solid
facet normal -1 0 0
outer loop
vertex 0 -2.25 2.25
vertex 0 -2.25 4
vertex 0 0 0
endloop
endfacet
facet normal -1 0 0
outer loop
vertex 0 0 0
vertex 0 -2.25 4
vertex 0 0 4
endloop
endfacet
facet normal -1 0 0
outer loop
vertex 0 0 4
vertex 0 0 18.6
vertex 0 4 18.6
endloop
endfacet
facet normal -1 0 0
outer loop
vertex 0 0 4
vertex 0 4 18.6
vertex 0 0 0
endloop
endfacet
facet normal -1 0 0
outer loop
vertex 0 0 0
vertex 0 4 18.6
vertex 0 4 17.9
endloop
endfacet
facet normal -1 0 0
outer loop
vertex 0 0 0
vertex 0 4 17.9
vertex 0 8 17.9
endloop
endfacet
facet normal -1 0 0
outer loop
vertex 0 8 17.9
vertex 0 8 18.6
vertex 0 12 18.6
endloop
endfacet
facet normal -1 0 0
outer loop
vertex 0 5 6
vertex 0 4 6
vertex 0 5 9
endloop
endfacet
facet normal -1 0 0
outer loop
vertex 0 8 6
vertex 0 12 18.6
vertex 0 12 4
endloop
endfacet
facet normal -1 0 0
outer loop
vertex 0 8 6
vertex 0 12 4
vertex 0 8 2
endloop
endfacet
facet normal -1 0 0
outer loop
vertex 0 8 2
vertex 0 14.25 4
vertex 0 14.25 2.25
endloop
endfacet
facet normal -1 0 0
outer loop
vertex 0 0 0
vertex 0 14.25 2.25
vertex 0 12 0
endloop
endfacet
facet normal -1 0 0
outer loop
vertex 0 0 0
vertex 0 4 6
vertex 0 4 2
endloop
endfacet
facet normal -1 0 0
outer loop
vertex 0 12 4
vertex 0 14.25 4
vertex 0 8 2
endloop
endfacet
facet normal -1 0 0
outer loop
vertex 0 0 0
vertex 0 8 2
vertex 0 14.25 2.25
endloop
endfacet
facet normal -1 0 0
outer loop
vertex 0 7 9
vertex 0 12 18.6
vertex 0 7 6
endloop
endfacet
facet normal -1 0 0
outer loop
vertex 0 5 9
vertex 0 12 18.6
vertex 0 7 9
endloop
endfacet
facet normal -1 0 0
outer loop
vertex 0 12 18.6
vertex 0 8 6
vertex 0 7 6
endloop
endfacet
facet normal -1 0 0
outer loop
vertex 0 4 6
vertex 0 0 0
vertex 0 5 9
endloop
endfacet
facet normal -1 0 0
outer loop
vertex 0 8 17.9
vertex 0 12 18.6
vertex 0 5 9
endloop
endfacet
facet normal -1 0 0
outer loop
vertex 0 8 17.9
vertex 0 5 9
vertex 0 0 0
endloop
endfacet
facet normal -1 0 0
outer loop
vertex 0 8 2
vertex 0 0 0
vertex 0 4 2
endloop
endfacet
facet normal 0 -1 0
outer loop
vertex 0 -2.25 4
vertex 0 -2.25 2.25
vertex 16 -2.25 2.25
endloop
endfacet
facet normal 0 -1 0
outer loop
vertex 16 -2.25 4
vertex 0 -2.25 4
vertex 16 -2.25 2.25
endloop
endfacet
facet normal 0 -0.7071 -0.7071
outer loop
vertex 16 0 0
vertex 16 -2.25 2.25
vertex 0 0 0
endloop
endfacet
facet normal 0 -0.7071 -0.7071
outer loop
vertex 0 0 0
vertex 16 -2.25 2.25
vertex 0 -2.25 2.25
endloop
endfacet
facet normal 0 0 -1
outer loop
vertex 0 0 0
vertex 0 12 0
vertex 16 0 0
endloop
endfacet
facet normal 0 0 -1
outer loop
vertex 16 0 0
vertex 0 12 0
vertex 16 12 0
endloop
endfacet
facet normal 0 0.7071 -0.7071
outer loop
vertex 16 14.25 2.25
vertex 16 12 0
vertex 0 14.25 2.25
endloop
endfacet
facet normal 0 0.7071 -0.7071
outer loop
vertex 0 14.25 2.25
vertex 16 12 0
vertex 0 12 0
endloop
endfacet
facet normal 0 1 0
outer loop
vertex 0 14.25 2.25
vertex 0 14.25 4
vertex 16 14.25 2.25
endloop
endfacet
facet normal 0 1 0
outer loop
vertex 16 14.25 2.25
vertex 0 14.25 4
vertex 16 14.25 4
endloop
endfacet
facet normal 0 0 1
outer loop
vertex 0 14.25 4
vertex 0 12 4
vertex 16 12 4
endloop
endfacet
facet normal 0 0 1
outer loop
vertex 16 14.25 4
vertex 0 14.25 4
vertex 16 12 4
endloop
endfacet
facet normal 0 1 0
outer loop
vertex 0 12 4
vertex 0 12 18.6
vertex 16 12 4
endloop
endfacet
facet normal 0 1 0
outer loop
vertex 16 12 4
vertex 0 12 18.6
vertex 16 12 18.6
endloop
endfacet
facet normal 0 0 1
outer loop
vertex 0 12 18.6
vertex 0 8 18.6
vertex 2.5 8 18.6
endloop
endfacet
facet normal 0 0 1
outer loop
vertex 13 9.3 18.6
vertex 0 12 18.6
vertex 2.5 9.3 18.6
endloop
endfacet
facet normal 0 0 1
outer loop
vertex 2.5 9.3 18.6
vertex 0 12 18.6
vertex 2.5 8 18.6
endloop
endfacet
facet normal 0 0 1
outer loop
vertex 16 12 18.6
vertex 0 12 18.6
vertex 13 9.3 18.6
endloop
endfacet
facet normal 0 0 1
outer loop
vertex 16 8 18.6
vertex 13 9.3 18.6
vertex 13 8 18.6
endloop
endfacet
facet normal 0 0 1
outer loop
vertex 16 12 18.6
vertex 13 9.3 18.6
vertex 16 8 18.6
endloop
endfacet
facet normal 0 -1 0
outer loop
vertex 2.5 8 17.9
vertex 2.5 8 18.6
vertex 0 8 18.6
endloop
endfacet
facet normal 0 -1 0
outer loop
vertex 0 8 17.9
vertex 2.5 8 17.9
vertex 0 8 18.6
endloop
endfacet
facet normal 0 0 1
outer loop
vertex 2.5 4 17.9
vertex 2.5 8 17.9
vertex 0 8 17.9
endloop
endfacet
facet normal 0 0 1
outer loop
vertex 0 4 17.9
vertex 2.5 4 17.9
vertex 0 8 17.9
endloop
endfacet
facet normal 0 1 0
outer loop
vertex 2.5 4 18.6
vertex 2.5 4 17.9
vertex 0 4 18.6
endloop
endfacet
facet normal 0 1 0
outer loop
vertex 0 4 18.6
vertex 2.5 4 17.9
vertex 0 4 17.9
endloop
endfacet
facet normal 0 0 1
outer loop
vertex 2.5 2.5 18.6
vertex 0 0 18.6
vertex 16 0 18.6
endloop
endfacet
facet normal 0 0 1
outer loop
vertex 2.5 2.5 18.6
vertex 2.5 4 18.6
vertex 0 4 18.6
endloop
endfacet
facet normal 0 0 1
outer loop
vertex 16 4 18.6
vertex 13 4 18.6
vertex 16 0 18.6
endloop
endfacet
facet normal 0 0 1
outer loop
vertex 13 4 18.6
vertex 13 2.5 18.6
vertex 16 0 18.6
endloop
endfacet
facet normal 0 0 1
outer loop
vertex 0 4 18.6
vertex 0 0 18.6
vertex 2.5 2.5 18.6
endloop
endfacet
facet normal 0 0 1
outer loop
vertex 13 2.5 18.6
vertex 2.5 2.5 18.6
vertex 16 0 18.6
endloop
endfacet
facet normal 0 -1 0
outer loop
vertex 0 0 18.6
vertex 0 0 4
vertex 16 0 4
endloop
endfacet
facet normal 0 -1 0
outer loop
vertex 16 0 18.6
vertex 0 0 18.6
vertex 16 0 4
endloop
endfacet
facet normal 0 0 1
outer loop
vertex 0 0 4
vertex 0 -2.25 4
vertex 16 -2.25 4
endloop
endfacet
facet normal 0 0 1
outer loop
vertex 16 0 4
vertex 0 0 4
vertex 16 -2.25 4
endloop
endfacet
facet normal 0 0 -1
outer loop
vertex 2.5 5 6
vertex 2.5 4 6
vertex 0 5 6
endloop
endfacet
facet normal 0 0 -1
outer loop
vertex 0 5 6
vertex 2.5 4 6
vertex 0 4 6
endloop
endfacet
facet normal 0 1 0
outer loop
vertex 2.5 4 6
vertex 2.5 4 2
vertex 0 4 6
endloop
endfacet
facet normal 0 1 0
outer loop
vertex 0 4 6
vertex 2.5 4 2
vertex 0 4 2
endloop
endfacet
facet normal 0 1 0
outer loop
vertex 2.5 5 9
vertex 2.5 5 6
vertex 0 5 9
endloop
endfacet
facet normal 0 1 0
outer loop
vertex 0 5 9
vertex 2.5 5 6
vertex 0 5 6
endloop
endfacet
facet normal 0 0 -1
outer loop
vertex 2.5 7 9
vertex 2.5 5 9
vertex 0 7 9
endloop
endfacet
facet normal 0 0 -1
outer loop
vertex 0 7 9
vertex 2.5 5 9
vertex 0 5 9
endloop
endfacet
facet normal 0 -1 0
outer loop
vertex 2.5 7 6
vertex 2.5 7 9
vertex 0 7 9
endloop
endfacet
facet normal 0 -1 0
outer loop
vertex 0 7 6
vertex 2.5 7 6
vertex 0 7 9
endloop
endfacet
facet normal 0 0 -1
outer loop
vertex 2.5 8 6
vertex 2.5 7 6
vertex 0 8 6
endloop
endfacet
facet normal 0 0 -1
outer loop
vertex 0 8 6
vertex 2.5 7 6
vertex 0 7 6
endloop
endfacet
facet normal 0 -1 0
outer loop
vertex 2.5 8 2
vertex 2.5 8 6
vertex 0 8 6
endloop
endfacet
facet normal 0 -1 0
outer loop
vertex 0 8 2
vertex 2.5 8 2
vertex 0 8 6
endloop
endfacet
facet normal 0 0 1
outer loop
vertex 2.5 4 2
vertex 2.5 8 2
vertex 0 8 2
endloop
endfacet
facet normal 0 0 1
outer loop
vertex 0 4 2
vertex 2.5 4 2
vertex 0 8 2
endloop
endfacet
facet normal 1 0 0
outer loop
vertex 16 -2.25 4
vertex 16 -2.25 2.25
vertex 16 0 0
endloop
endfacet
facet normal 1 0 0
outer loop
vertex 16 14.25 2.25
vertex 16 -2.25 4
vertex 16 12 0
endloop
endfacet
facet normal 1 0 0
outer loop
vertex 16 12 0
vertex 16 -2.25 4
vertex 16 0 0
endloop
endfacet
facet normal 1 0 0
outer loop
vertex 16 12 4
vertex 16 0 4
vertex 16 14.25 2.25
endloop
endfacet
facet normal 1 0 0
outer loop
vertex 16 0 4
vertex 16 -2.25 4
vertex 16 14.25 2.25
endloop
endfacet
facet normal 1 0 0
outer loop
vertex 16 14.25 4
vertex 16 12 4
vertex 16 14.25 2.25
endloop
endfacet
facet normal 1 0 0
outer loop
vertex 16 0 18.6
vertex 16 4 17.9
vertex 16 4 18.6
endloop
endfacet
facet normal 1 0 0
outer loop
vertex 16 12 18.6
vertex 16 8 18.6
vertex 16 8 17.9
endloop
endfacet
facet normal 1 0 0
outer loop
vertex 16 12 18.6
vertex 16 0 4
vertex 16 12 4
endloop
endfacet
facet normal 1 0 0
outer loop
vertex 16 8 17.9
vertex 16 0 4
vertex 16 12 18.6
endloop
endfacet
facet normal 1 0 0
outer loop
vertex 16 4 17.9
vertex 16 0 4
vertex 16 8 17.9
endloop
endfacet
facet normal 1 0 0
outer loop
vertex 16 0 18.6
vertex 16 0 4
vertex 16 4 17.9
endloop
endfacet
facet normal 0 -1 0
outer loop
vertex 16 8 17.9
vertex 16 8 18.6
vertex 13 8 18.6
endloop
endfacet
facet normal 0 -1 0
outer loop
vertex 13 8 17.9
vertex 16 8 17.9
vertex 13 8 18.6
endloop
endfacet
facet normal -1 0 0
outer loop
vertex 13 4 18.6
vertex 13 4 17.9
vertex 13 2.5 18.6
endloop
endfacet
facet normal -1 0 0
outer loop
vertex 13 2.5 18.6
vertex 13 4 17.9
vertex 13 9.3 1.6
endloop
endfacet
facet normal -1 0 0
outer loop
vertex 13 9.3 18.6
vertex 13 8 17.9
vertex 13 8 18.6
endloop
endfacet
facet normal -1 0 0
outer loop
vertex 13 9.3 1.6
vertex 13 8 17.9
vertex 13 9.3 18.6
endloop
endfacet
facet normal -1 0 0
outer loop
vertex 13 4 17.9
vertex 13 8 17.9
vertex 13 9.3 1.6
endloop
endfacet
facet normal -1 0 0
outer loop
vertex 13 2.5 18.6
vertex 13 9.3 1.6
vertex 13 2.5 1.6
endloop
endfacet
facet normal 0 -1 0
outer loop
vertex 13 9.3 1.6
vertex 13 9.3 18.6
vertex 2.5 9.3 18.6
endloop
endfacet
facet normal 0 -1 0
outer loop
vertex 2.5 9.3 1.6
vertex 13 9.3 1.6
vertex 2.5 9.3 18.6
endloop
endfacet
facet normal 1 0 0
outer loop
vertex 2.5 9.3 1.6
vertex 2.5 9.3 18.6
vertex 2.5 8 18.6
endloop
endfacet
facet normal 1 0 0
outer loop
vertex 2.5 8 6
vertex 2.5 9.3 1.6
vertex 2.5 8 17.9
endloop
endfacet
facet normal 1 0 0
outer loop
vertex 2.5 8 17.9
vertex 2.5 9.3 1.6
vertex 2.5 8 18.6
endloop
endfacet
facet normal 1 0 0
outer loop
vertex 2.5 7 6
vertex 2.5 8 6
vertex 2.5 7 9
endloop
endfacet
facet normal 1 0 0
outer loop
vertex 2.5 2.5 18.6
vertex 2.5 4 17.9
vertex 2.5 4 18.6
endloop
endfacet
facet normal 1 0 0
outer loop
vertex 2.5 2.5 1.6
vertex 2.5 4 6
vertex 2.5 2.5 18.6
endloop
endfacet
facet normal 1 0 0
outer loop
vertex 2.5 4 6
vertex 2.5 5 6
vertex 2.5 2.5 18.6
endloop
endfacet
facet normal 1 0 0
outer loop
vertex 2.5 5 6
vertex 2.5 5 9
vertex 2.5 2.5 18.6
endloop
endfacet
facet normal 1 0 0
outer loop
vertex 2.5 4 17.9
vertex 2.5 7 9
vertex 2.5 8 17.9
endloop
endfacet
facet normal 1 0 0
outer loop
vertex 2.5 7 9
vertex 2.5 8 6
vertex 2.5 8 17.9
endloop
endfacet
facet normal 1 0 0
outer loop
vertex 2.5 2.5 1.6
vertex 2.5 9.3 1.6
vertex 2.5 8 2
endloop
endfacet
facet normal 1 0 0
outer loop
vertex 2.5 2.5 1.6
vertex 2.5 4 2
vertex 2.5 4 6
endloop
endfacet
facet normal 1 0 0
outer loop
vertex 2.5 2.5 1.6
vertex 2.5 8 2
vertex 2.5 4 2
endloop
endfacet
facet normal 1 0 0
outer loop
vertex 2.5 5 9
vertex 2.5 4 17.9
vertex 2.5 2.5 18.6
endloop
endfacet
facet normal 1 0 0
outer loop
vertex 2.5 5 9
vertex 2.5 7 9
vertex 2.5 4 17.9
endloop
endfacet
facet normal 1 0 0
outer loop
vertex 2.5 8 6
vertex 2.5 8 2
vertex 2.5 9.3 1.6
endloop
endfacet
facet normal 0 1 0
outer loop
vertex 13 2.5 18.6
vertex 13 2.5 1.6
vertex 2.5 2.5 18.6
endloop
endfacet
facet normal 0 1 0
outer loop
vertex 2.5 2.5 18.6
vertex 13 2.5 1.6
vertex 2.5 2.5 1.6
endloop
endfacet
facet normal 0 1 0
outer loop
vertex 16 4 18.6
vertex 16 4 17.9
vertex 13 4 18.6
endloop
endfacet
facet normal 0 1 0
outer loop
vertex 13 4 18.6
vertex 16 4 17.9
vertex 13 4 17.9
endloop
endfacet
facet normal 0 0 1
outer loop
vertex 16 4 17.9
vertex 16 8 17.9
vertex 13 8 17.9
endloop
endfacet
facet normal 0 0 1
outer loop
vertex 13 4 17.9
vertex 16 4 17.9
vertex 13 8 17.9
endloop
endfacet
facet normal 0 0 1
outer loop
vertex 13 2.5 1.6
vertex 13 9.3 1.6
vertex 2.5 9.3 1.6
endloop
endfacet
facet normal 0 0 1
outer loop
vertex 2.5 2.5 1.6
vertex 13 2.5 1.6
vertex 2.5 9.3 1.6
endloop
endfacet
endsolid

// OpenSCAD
/**
 * Hand Saw Brush Holder
 */
xlength=16;

ywidth=12;
holeyw=4;
holeywsmall=2;
botthick=2;
pinywidth=16.5;
zheight=18.6;

eps=0.01;

difference() {
   union() {
	cube([xlength, ywidth, zheight]);
	translate([0, -(pinywidth-ywidth)/2, 0])
		cube([xlength, pinywidth, 4]);
   }
   translate([2.5, 2.5, 18.6-17])
	cube([10.5, 6.8, 17+eps]);

   translate([-eps,(ywidth-holeyw)/2,botthick])
	cube([3,holeyw,4]);
   translate([-eps,(ywidth-holeywsmall)/2,botthick])
	cube([3,holeywsmall,7]);

   translate([-eps,-sqrt(2)*2,-sqrt(2)*2])
	rotate([45,0,0])
		cube([xlength+eps+eps, 4, 4]);
   translate([-eps,ywidth+sqrt(2)*2,-sqrt(2)*2])
	rotate([45,0,0])
		cube([xlength+eps+eps, 4, 4]);

   translate([-eps,(ywidth-4)/2,zheight-0.7])
	cube([xlength+eps+eps, 4, 1]);
}
